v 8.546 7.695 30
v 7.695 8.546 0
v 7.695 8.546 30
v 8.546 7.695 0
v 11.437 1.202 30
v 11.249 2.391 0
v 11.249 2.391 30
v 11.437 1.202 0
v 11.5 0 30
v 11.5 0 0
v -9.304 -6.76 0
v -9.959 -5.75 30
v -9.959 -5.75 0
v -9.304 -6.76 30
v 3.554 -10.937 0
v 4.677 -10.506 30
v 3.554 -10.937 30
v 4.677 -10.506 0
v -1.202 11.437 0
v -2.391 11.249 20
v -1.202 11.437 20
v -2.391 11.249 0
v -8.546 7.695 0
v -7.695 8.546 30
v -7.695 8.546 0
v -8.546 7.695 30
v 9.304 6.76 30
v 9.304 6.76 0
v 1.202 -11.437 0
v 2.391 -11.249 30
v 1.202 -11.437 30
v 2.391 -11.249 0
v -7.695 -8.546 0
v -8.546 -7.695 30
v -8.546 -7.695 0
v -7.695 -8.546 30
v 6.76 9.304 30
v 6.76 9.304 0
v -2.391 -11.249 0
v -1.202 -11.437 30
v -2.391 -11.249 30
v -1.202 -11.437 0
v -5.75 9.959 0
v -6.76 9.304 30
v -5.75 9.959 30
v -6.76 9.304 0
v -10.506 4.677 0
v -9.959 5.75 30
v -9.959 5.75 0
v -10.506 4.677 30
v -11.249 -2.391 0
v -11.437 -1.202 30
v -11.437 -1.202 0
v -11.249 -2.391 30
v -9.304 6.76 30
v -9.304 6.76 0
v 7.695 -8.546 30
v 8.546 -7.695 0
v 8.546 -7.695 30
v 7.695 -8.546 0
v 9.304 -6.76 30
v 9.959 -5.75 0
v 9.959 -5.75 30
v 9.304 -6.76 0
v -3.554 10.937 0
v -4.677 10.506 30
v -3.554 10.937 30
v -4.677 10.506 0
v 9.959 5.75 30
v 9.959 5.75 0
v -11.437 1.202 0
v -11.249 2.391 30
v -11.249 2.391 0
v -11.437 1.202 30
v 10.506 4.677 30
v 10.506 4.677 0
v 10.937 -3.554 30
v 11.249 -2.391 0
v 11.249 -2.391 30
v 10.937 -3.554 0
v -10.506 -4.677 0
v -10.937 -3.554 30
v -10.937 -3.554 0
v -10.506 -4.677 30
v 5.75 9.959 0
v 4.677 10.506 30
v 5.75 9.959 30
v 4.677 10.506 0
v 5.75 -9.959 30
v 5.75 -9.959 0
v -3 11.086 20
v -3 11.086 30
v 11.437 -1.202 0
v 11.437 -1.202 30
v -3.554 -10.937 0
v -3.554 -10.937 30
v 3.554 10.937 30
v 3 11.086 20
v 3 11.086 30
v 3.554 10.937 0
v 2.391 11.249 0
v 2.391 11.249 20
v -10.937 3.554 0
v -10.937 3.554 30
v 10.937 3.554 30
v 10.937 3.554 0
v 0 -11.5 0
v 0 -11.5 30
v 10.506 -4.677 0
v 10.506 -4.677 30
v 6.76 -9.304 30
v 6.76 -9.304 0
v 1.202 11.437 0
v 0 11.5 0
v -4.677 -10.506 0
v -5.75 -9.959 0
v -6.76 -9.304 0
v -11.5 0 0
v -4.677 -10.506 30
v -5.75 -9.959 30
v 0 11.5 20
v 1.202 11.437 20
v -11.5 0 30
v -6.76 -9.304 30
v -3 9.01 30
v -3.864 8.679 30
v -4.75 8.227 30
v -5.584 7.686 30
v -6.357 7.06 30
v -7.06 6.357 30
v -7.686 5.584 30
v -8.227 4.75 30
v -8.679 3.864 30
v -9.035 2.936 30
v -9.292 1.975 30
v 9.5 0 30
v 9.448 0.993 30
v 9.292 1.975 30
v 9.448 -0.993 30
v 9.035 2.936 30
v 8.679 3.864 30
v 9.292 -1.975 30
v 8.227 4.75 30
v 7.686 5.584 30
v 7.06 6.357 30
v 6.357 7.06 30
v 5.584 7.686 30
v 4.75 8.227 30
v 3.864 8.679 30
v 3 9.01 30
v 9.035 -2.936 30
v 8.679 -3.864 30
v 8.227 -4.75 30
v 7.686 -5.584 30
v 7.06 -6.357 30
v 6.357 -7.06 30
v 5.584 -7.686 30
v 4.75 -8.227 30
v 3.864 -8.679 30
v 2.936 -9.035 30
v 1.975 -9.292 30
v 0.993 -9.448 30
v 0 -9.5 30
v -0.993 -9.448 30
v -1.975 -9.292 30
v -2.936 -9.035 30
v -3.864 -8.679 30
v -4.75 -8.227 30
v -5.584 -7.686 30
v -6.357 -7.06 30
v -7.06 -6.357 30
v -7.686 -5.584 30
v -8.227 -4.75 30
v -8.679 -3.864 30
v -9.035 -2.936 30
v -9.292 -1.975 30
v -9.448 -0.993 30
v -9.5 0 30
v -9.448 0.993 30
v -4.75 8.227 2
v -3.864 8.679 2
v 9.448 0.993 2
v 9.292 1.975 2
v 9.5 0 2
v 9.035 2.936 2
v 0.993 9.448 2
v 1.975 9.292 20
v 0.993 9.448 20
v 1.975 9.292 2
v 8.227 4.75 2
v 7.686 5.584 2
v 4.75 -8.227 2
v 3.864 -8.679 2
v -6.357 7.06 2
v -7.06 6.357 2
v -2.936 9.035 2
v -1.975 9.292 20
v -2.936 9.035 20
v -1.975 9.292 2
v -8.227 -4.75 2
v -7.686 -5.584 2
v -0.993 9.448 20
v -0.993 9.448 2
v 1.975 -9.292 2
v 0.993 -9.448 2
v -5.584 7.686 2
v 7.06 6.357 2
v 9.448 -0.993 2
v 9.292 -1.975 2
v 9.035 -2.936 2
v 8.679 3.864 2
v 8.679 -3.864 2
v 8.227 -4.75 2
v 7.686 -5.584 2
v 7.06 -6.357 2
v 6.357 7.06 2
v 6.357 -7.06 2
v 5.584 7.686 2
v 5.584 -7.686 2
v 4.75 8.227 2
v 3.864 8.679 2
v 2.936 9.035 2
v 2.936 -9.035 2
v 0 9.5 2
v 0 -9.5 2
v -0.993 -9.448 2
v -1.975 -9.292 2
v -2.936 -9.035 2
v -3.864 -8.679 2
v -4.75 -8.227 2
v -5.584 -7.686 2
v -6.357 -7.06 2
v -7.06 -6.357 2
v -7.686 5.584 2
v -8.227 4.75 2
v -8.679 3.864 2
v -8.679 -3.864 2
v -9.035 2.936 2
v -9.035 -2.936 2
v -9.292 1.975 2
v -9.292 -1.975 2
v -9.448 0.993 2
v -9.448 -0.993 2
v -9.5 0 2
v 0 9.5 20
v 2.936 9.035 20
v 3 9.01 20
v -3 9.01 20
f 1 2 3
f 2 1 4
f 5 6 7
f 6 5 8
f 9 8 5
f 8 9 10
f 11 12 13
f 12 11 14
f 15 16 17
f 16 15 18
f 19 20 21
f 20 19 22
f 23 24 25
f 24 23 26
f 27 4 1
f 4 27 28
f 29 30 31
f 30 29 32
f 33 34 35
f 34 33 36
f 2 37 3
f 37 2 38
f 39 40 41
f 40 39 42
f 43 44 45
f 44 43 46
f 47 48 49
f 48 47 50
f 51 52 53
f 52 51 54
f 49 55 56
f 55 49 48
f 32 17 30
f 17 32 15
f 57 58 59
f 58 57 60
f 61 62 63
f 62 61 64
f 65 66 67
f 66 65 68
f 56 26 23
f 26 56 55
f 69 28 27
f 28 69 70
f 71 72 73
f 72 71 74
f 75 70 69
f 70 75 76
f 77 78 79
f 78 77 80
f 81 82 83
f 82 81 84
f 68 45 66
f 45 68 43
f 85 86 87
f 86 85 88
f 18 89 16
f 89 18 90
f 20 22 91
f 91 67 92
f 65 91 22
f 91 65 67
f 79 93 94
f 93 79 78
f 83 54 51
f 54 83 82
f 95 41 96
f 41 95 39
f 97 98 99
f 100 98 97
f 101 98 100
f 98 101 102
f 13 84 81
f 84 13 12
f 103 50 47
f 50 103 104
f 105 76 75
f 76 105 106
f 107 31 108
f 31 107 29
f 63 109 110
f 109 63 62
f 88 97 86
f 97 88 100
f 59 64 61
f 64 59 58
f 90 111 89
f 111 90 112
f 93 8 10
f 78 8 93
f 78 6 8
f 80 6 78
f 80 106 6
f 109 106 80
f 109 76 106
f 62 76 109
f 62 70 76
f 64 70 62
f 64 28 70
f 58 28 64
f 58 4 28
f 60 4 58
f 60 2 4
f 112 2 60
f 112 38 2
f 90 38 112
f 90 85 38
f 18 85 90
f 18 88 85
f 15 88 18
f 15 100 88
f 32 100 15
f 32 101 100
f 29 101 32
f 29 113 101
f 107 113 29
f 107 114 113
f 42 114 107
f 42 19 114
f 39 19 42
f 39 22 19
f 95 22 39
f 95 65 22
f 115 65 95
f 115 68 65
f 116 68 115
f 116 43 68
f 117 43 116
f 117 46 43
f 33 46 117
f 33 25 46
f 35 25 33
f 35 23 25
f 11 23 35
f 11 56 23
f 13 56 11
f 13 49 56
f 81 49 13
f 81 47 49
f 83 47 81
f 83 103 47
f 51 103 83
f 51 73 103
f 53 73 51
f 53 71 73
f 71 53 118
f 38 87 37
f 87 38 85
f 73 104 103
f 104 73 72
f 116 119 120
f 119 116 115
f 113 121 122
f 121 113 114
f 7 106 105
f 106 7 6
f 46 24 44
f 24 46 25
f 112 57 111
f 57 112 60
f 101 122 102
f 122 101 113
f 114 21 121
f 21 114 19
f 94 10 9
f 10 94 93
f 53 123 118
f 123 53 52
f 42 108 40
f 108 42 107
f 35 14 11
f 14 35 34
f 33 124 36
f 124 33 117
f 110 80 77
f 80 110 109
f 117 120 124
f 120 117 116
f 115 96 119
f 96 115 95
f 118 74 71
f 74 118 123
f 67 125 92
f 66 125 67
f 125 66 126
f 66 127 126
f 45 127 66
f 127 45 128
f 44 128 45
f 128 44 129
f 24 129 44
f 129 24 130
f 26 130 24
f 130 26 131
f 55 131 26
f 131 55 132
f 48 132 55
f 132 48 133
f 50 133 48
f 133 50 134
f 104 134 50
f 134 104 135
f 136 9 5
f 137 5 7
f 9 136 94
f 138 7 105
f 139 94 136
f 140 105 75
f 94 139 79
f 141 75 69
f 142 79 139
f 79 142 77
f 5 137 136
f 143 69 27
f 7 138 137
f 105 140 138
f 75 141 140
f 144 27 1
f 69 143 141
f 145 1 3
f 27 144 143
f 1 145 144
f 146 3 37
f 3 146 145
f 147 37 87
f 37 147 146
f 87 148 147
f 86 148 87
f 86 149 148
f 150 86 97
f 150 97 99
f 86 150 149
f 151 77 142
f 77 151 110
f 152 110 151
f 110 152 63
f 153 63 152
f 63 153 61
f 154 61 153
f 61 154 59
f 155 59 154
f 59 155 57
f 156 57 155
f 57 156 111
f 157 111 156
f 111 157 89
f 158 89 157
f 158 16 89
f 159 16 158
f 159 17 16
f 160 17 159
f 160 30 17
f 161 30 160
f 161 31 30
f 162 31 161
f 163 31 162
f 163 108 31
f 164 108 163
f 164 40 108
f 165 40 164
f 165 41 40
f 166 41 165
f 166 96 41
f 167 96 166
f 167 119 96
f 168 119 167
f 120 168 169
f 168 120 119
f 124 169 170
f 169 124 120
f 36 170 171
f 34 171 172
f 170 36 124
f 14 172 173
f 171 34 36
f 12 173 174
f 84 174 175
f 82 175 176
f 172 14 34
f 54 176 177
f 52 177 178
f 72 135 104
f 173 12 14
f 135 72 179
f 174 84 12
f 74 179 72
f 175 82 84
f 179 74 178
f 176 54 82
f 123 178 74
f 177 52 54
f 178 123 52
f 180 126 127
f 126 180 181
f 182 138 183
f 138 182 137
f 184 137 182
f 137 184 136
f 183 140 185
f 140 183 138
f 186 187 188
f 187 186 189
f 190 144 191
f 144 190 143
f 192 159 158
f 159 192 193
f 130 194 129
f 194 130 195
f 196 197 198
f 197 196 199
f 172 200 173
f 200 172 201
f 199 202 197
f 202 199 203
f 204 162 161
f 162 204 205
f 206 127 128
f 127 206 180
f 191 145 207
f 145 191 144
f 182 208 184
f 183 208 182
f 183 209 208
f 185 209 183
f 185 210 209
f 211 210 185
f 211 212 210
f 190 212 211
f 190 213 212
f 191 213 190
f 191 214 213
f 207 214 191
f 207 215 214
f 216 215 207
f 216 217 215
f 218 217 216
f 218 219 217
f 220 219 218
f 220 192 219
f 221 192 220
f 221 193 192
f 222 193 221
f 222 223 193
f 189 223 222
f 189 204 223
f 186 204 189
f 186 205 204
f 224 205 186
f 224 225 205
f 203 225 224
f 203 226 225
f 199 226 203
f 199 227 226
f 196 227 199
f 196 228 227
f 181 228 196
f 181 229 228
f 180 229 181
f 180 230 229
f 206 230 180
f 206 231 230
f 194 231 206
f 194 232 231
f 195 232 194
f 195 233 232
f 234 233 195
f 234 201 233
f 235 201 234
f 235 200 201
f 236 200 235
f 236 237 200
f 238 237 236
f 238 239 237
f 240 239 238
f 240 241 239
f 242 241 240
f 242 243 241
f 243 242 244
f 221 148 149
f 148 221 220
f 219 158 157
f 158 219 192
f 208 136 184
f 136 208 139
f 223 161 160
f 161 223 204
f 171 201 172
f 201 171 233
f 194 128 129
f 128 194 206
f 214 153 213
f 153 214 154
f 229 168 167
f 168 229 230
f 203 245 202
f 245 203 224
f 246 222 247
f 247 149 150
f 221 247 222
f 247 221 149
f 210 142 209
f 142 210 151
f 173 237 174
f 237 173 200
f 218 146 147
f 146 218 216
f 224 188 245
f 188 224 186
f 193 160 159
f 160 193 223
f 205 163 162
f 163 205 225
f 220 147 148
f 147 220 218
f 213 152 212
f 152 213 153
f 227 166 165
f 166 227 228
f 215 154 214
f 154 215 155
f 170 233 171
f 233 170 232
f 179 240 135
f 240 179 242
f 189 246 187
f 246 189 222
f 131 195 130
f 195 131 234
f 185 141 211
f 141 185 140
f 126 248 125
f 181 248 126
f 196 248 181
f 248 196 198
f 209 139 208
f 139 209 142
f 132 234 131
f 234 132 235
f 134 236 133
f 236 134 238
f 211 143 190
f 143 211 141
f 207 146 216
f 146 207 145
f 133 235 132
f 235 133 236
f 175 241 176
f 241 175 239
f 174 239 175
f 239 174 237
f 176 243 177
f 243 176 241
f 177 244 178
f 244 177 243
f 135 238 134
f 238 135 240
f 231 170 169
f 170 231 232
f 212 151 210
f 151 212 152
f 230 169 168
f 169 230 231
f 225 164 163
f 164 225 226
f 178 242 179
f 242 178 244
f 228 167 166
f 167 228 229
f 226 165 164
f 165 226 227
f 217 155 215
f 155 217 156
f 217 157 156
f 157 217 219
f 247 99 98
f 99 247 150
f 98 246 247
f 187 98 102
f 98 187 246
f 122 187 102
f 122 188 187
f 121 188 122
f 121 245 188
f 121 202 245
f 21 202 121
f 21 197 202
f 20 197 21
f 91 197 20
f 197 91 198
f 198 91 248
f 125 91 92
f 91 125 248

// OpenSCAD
// luier
$fn=60;
difference(){
    cylinder(d=23,h=30);
    translate([0,0,2])cylinder(d=19,h=30);
    translate([-3,0,20])cube([6,30,22]);
}
